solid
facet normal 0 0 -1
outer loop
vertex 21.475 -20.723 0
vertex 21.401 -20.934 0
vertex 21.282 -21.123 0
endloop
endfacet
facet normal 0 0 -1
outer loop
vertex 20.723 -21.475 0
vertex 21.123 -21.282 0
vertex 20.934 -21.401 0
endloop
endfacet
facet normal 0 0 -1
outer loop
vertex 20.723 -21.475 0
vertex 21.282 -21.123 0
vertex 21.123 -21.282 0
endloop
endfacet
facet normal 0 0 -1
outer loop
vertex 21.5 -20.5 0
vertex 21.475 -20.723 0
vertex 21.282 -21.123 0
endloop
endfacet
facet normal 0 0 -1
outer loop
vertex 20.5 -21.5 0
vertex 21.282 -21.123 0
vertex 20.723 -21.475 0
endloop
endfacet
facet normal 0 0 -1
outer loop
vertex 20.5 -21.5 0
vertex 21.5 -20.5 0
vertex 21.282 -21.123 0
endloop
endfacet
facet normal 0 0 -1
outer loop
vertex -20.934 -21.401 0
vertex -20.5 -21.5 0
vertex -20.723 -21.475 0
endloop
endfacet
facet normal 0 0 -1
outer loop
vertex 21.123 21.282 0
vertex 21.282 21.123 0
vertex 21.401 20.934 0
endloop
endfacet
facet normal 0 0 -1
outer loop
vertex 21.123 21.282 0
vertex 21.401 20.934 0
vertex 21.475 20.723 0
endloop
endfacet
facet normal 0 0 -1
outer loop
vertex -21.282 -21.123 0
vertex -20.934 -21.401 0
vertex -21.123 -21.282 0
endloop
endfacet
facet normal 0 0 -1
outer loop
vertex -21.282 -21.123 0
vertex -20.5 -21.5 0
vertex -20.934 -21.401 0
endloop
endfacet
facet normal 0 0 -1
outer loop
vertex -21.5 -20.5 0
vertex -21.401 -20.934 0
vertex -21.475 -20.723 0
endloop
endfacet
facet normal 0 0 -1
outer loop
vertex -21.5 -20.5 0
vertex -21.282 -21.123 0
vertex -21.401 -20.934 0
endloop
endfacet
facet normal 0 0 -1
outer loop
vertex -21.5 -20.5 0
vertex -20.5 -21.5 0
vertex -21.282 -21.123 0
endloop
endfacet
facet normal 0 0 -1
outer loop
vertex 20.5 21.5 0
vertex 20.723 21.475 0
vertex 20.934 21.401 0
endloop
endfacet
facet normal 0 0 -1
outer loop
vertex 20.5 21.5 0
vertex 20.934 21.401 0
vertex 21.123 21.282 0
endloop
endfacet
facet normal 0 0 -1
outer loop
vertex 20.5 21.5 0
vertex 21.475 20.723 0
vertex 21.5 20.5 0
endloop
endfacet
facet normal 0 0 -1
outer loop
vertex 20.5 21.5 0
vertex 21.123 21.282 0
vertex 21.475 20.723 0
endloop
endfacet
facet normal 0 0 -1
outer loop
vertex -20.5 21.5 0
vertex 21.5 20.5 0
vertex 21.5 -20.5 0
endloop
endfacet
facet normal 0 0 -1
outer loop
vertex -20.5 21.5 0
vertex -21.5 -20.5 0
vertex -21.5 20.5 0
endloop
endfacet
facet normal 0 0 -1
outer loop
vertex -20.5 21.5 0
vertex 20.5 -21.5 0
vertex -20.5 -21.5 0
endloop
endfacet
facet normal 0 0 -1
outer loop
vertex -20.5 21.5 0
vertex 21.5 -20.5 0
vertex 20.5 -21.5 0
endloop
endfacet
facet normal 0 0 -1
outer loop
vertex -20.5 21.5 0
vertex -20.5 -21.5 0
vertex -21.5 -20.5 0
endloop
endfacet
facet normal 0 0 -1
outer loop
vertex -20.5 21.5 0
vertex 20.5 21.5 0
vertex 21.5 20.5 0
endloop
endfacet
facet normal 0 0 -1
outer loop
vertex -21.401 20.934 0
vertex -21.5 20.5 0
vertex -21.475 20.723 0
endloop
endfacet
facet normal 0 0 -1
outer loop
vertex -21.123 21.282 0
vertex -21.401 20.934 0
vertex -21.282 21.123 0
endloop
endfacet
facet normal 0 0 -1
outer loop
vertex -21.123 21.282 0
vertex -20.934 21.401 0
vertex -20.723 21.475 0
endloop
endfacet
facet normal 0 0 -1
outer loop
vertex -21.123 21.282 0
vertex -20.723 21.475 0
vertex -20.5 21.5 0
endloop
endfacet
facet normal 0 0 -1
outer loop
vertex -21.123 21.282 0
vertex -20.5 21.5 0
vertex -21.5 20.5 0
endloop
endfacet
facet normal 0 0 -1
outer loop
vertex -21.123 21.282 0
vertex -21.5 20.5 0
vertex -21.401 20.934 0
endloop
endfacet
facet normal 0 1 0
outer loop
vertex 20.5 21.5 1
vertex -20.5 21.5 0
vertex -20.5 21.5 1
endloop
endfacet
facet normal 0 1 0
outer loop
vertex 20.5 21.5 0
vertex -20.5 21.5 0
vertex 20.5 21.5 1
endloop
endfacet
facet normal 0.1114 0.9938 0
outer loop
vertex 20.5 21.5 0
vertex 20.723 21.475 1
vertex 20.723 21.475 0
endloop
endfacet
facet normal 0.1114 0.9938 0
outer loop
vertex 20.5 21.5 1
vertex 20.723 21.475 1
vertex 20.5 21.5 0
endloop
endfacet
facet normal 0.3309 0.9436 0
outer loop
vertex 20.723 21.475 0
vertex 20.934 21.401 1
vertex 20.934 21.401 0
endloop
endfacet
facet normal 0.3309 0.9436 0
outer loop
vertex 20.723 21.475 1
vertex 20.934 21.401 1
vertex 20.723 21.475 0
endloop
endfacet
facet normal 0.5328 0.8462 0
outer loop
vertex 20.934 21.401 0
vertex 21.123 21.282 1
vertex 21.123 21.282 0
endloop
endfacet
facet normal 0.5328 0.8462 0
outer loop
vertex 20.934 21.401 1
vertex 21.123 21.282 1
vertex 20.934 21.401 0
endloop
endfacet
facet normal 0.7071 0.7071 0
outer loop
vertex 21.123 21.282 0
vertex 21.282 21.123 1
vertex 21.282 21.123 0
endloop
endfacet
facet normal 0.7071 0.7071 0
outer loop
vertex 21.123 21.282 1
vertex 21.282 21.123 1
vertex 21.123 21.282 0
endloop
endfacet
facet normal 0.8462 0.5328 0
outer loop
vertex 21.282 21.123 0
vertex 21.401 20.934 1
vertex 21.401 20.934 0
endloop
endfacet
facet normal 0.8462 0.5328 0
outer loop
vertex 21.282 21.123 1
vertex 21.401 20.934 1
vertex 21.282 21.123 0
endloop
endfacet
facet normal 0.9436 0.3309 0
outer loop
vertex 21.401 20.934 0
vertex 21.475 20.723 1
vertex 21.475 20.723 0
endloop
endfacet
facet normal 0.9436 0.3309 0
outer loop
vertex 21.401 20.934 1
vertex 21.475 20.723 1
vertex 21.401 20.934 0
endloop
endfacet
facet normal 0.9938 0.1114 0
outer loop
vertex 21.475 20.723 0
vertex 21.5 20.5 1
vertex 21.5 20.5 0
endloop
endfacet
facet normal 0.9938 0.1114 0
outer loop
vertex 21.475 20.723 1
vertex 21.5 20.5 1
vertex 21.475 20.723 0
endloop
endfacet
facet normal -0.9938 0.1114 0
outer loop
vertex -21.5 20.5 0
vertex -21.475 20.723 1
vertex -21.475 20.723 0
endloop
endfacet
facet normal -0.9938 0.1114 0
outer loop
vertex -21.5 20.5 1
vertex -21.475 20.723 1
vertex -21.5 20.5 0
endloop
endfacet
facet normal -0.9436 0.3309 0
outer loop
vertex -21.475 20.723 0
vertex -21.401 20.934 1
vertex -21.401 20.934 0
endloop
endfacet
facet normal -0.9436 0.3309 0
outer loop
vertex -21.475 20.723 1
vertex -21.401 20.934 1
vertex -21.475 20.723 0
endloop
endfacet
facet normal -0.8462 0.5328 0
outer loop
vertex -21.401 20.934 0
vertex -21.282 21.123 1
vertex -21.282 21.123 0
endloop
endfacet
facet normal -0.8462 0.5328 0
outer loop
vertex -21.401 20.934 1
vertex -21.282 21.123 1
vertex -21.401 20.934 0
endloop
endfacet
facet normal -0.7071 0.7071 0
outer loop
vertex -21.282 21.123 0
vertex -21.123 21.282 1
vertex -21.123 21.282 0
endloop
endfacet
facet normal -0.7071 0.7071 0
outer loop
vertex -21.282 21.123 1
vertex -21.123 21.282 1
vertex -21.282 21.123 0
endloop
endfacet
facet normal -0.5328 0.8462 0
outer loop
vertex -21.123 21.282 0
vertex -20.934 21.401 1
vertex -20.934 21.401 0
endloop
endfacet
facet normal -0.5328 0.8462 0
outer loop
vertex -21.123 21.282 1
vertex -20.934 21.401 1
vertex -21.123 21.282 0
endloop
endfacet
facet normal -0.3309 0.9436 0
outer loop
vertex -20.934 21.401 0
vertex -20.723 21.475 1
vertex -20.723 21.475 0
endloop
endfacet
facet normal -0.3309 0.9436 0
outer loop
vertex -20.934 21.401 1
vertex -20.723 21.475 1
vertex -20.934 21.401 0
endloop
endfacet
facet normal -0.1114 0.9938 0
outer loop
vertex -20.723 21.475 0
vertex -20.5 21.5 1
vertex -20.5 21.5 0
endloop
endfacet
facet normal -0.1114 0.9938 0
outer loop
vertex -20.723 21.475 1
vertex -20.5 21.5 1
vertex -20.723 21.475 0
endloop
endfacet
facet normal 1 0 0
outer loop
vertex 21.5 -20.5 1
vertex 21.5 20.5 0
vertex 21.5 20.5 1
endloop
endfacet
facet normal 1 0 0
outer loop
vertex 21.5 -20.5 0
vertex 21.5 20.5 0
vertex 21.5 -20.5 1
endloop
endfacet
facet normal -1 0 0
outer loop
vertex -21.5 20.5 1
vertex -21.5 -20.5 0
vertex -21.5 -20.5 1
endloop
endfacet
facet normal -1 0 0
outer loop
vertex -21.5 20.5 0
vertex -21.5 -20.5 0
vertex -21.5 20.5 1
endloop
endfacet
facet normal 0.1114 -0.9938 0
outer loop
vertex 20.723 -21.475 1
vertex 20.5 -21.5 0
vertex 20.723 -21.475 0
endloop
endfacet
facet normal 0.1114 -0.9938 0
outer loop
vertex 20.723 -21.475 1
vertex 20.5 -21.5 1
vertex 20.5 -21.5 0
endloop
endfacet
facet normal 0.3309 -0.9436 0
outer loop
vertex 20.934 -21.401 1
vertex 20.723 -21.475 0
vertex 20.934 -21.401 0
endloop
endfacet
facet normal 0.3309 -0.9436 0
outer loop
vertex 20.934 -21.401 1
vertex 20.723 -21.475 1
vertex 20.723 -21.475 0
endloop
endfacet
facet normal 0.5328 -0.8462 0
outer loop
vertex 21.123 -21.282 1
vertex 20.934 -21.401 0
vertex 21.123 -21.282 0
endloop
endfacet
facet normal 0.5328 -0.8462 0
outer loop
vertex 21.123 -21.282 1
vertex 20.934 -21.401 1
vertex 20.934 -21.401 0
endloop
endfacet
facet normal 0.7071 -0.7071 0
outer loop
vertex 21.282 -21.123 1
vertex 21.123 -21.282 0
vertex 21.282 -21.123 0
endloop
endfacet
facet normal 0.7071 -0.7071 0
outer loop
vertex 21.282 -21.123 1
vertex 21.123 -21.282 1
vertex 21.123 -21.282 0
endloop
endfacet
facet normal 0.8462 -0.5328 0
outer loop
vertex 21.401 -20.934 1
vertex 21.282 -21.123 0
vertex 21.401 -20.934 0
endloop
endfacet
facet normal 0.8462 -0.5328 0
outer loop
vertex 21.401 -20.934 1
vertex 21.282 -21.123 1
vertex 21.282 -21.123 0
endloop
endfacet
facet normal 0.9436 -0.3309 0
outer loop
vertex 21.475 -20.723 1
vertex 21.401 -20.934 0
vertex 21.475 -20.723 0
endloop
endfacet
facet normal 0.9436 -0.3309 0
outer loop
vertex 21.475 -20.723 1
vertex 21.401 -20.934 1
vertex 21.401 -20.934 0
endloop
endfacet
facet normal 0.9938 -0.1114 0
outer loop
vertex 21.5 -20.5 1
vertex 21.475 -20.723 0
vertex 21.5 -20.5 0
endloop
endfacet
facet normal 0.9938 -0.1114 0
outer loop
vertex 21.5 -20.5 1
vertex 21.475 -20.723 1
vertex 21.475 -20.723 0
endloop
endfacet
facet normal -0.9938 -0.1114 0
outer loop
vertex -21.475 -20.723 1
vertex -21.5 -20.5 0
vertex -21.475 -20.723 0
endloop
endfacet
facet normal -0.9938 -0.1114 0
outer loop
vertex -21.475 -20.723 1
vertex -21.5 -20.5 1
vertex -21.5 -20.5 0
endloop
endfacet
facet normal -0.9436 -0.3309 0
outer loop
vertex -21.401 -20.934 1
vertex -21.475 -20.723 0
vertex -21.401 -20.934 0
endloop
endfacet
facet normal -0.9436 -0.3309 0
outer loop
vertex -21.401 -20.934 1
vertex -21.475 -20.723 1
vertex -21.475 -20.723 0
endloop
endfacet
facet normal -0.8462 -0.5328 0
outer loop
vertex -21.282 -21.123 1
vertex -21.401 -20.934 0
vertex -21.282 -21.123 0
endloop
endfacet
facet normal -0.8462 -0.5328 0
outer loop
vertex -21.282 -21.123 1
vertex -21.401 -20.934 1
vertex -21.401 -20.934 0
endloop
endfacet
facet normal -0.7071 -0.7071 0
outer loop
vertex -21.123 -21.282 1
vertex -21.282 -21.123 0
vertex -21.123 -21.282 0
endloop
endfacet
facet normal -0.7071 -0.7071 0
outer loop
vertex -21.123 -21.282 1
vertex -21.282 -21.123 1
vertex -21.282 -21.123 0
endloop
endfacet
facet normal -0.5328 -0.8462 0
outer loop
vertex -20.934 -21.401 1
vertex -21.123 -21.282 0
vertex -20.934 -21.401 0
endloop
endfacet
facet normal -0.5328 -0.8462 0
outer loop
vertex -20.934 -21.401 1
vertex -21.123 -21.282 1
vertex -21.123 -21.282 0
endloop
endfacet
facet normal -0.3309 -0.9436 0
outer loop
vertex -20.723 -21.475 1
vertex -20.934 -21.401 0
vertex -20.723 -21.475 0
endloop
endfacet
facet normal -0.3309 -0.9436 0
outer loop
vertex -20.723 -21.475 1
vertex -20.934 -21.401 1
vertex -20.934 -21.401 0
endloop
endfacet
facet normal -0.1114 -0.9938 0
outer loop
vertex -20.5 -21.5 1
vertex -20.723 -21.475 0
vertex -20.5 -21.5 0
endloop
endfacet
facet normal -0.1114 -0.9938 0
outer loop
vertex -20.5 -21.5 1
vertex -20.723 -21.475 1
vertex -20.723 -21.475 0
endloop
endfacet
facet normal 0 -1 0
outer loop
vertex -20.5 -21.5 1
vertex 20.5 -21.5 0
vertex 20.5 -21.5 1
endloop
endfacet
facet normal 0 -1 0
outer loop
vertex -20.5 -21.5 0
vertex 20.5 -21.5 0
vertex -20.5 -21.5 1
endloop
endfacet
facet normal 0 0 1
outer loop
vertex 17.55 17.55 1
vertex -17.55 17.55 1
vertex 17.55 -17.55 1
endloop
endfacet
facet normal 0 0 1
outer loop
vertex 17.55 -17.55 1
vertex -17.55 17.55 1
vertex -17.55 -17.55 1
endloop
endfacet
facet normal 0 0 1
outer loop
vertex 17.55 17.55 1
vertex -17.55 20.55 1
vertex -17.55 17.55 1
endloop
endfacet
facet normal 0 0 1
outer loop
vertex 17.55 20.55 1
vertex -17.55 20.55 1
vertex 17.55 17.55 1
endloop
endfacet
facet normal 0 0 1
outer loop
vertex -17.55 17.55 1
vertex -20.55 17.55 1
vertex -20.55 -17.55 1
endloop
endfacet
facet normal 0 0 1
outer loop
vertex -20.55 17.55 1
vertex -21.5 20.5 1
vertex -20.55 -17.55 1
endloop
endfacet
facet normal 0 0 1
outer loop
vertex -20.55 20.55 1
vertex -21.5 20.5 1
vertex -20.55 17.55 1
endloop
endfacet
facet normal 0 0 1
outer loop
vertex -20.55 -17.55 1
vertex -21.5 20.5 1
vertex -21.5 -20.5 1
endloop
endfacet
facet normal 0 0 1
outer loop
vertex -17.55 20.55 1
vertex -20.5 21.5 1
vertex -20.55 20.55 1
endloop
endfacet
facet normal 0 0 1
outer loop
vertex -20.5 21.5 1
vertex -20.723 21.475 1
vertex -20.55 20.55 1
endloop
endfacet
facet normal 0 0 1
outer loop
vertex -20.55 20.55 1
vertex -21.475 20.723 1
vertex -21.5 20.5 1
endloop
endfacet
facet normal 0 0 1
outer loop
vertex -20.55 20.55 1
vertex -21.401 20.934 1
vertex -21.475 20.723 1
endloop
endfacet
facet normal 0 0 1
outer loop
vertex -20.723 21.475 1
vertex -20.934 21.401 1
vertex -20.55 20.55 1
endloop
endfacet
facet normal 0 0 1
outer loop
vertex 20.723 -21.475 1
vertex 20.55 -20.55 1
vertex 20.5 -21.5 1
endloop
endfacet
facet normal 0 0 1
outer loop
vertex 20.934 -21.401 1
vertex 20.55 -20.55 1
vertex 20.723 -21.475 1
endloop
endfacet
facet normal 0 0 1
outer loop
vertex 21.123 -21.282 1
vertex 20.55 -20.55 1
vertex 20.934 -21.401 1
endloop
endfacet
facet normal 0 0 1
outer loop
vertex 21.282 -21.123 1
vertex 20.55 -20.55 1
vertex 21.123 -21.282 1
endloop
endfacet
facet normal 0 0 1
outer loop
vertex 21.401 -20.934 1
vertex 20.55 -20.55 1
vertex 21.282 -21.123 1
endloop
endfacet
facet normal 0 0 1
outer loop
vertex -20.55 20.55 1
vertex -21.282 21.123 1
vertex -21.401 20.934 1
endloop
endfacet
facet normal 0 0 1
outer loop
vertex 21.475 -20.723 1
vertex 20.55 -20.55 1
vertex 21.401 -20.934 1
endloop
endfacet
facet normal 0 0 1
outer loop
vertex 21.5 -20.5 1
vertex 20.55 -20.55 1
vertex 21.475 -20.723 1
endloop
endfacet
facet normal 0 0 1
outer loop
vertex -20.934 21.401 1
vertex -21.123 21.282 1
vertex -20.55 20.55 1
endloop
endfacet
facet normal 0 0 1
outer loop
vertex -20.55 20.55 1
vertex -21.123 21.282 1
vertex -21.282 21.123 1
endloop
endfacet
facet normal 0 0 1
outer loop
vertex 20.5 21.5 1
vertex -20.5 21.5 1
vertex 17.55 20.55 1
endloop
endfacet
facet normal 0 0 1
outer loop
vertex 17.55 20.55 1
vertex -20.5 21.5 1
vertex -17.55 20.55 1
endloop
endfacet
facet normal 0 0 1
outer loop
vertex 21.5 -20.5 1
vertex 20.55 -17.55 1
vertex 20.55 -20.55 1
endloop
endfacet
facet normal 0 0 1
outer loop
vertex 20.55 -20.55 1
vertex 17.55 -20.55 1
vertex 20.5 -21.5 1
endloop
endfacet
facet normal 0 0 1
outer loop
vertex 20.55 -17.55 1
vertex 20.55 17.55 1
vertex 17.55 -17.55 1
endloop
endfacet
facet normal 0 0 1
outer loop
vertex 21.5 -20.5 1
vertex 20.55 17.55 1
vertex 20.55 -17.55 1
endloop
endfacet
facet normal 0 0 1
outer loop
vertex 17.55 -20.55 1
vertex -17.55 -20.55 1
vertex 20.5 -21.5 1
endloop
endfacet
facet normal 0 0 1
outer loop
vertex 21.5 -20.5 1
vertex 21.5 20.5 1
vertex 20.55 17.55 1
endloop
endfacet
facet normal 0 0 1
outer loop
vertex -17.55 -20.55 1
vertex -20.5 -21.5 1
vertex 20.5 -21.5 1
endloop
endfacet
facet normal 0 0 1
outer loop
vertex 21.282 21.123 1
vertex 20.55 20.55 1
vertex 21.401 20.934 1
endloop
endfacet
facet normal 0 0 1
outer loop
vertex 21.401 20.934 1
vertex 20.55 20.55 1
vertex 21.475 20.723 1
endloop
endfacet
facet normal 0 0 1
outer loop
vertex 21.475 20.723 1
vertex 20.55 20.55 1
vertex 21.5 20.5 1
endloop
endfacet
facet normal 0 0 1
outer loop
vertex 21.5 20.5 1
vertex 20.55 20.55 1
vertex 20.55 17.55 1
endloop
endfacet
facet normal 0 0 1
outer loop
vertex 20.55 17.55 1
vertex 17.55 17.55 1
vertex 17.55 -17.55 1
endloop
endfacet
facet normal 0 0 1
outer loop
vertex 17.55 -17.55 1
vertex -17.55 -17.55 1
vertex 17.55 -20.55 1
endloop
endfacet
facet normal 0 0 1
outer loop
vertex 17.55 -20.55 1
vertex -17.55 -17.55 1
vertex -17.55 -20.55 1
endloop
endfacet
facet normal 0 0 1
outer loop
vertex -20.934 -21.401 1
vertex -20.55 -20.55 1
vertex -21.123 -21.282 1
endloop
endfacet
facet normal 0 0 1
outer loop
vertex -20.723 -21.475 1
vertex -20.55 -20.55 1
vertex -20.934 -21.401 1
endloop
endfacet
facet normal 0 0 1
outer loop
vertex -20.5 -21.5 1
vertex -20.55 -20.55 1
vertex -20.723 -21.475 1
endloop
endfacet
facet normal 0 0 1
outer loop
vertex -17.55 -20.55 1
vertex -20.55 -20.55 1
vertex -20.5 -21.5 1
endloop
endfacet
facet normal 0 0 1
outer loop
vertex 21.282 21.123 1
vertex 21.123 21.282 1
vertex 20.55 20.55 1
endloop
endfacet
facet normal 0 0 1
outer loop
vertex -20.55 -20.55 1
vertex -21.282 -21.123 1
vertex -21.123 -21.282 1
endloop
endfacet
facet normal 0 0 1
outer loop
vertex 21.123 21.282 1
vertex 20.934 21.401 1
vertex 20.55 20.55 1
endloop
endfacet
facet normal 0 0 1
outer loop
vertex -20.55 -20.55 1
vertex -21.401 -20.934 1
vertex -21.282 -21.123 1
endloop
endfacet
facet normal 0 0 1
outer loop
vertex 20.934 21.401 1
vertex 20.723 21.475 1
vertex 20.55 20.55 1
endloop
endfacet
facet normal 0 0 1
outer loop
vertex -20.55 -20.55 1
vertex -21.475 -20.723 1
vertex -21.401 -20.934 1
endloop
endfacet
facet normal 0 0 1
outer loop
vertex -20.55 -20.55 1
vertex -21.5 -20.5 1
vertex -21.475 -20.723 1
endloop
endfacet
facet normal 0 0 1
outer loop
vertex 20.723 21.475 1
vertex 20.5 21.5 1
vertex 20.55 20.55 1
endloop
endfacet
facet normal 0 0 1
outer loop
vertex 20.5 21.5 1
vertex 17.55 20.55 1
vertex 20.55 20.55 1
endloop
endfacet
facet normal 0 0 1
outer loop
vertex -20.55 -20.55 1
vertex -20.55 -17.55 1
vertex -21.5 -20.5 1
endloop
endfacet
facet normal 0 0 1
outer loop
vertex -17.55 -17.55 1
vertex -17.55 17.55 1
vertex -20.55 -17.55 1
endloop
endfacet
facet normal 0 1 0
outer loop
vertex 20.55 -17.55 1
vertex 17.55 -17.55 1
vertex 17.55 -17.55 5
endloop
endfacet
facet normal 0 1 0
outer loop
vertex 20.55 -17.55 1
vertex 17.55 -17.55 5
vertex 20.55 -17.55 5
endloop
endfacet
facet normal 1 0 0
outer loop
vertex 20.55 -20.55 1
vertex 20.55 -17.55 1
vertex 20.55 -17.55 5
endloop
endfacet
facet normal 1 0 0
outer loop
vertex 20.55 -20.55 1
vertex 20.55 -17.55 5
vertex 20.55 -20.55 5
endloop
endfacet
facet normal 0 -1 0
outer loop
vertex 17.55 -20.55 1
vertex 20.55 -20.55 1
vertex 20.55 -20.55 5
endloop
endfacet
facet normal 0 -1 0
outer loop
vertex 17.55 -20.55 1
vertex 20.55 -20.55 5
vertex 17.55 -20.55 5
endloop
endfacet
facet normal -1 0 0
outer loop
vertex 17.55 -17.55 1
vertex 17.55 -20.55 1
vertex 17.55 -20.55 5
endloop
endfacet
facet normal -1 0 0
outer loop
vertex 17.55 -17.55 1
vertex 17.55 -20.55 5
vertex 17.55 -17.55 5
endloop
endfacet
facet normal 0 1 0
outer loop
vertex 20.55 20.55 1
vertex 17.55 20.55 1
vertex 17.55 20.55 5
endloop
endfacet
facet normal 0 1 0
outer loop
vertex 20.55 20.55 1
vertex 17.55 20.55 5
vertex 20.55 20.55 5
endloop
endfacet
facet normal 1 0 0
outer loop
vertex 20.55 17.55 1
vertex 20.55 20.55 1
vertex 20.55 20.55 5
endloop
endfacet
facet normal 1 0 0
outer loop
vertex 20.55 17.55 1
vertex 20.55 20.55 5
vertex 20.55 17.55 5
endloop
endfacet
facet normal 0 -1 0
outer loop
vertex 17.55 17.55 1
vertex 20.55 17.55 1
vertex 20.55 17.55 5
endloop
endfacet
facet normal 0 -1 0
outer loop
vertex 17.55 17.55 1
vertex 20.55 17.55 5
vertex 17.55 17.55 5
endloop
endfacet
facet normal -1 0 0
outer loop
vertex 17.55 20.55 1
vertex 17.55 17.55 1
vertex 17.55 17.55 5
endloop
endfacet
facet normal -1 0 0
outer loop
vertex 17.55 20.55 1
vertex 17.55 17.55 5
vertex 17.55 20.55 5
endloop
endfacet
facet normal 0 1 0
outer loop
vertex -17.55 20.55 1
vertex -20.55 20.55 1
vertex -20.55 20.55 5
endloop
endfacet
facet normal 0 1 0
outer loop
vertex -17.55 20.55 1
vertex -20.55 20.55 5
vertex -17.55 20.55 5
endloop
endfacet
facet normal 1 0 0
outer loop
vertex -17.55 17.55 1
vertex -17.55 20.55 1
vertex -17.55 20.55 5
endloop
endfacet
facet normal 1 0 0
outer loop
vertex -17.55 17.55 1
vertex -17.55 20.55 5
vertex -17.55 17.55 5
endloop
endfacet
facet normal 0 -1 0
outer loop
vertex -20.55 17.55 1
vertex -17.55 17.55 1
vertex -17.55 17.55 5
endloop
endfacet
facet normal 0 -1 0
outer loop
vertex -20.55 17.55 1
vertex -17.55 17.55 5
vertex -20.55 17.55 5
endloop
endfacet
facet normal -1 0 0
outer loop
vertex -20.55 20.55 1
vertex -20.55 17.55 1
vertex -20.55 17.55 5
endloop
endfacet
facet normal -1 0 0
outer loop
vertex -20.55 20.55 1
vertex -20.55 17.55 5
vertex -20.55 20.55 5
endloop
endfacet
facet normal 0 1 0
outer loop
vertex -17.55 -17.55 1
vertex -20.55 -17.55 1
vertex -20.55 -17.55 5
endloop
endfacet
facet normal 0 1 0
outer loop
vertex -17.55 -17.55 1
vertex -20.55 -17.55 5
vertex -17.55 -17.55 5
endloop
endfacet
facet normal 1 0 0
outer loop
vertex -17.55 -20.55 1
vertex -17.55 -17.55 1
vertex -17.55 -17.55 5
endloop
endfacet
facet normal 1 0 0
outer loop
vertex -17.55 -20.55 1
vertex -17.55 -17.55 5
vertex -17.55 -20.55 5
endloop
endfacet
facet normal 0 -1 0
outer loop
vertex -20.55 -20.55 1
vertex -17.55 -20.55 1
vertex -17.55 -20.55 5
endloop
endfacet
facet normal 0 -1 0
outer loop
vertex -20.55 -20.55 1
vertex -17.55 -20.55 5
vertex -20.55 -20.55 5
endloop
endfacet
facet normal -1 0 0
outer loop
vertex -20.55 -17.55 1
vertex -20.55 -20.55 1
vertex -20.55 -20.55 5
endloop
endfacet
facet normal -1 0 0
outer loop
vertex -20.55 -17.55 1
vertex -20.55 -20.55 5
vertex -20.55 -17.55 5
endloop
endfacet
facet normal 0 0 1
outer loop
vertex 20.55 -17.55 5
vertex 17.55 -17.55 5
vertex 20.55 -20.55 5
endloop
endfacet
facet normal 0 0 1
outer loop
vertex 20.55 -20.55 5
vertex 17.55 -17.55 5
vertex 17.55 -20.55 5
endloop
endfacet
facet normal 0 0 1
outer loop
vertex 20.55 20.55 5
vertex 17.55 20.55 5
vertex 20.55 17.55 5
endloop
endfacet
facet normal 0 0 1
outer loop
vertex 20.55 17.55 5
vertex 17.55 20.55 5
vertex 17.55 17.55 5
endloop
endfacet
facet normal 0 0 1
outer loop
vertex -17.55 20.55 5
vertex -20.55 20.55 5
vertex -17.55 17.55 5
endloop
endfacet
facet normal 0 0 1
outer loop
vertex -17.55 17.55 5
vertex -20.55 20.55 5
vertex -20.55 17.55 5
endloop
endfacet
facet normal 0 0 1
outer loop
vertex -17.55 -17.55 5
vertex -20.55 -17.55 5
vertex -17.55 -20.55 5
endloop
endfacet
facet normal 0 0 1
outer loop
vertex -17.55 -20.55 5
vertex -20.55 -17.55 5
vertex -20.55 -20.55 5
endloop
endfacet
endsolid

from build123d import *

# Parameters (mm, degrees)
SKETCH_W     = 43
SKETCH_H     = 43
PAD_DEPTH    = 1
SKETCH001_W  = 3
SKETCH001_H  = 3
PAD001_DEPTH = 4
FILLET_R     = 1
FILLET001_R  = 1
FILLET002_R  = 1
FILLET003_R  = 1


with BuildPart() as part:
    # Sketch → Pad (new body)
    with BuildSketch(Plane.XY):
        Rectangle(SKETCH_W, SKETCH_H)
    extrude(amount=PAD_DEPTH)

    # Sketch001 (on Face6 of Pad) → Pad001 (join)
    with BuildSketch(Plane.XY.offset(1)):
        with Locations((-19.05, 19.05)):
            Rectangle(SKETCH001_W, SKETCH001_H)
        with Locations((19.05, 19.05)):
            Rectangle(SKETCH001_W, SKETCH001_H)
        with Locations((-19.05, -19.05)):
            Rectangle(SKETCH001_W, SKETCH001_H)
        with Locations((19.05, -19.05)):
            Rectangle(SKETCH001_W, SKETCH001_H)
    extrude(amount=PAD001_DEPTH)

    # Fillet
    fillet_edges = [part.edges().sort_by_distance(p)[0] for p in [
        (-21.5, -21.5, 0.5),
    ]]
    fillet(fillet_edges, radius=FILLET_R)

    # Fillet001
    fillet001_edges = [part.edges().sort_by_distance(p)[0] for p in [
        (21.5, -21.5, 0.5),
    ]]
    fillet(fillet001_edges, radius=FILLET001_R)

    # Fillet002
    fillet002_edges = [part.edges().sort_by_distance(p)[0] for p in [
        (-21.5, 21.5, 0.5),
    ]]
    fillet(fillet002_edges, radius=FILLET002_R)

    # Fillet003
    fillet003_edges = [part.edges().sort_by_distance(p)[0] for p in [
        (21.5, 21.5, 0.5),
    ]]
    fillet(fillet003_edges, radius=FILLET003_R)


solid = part.part
